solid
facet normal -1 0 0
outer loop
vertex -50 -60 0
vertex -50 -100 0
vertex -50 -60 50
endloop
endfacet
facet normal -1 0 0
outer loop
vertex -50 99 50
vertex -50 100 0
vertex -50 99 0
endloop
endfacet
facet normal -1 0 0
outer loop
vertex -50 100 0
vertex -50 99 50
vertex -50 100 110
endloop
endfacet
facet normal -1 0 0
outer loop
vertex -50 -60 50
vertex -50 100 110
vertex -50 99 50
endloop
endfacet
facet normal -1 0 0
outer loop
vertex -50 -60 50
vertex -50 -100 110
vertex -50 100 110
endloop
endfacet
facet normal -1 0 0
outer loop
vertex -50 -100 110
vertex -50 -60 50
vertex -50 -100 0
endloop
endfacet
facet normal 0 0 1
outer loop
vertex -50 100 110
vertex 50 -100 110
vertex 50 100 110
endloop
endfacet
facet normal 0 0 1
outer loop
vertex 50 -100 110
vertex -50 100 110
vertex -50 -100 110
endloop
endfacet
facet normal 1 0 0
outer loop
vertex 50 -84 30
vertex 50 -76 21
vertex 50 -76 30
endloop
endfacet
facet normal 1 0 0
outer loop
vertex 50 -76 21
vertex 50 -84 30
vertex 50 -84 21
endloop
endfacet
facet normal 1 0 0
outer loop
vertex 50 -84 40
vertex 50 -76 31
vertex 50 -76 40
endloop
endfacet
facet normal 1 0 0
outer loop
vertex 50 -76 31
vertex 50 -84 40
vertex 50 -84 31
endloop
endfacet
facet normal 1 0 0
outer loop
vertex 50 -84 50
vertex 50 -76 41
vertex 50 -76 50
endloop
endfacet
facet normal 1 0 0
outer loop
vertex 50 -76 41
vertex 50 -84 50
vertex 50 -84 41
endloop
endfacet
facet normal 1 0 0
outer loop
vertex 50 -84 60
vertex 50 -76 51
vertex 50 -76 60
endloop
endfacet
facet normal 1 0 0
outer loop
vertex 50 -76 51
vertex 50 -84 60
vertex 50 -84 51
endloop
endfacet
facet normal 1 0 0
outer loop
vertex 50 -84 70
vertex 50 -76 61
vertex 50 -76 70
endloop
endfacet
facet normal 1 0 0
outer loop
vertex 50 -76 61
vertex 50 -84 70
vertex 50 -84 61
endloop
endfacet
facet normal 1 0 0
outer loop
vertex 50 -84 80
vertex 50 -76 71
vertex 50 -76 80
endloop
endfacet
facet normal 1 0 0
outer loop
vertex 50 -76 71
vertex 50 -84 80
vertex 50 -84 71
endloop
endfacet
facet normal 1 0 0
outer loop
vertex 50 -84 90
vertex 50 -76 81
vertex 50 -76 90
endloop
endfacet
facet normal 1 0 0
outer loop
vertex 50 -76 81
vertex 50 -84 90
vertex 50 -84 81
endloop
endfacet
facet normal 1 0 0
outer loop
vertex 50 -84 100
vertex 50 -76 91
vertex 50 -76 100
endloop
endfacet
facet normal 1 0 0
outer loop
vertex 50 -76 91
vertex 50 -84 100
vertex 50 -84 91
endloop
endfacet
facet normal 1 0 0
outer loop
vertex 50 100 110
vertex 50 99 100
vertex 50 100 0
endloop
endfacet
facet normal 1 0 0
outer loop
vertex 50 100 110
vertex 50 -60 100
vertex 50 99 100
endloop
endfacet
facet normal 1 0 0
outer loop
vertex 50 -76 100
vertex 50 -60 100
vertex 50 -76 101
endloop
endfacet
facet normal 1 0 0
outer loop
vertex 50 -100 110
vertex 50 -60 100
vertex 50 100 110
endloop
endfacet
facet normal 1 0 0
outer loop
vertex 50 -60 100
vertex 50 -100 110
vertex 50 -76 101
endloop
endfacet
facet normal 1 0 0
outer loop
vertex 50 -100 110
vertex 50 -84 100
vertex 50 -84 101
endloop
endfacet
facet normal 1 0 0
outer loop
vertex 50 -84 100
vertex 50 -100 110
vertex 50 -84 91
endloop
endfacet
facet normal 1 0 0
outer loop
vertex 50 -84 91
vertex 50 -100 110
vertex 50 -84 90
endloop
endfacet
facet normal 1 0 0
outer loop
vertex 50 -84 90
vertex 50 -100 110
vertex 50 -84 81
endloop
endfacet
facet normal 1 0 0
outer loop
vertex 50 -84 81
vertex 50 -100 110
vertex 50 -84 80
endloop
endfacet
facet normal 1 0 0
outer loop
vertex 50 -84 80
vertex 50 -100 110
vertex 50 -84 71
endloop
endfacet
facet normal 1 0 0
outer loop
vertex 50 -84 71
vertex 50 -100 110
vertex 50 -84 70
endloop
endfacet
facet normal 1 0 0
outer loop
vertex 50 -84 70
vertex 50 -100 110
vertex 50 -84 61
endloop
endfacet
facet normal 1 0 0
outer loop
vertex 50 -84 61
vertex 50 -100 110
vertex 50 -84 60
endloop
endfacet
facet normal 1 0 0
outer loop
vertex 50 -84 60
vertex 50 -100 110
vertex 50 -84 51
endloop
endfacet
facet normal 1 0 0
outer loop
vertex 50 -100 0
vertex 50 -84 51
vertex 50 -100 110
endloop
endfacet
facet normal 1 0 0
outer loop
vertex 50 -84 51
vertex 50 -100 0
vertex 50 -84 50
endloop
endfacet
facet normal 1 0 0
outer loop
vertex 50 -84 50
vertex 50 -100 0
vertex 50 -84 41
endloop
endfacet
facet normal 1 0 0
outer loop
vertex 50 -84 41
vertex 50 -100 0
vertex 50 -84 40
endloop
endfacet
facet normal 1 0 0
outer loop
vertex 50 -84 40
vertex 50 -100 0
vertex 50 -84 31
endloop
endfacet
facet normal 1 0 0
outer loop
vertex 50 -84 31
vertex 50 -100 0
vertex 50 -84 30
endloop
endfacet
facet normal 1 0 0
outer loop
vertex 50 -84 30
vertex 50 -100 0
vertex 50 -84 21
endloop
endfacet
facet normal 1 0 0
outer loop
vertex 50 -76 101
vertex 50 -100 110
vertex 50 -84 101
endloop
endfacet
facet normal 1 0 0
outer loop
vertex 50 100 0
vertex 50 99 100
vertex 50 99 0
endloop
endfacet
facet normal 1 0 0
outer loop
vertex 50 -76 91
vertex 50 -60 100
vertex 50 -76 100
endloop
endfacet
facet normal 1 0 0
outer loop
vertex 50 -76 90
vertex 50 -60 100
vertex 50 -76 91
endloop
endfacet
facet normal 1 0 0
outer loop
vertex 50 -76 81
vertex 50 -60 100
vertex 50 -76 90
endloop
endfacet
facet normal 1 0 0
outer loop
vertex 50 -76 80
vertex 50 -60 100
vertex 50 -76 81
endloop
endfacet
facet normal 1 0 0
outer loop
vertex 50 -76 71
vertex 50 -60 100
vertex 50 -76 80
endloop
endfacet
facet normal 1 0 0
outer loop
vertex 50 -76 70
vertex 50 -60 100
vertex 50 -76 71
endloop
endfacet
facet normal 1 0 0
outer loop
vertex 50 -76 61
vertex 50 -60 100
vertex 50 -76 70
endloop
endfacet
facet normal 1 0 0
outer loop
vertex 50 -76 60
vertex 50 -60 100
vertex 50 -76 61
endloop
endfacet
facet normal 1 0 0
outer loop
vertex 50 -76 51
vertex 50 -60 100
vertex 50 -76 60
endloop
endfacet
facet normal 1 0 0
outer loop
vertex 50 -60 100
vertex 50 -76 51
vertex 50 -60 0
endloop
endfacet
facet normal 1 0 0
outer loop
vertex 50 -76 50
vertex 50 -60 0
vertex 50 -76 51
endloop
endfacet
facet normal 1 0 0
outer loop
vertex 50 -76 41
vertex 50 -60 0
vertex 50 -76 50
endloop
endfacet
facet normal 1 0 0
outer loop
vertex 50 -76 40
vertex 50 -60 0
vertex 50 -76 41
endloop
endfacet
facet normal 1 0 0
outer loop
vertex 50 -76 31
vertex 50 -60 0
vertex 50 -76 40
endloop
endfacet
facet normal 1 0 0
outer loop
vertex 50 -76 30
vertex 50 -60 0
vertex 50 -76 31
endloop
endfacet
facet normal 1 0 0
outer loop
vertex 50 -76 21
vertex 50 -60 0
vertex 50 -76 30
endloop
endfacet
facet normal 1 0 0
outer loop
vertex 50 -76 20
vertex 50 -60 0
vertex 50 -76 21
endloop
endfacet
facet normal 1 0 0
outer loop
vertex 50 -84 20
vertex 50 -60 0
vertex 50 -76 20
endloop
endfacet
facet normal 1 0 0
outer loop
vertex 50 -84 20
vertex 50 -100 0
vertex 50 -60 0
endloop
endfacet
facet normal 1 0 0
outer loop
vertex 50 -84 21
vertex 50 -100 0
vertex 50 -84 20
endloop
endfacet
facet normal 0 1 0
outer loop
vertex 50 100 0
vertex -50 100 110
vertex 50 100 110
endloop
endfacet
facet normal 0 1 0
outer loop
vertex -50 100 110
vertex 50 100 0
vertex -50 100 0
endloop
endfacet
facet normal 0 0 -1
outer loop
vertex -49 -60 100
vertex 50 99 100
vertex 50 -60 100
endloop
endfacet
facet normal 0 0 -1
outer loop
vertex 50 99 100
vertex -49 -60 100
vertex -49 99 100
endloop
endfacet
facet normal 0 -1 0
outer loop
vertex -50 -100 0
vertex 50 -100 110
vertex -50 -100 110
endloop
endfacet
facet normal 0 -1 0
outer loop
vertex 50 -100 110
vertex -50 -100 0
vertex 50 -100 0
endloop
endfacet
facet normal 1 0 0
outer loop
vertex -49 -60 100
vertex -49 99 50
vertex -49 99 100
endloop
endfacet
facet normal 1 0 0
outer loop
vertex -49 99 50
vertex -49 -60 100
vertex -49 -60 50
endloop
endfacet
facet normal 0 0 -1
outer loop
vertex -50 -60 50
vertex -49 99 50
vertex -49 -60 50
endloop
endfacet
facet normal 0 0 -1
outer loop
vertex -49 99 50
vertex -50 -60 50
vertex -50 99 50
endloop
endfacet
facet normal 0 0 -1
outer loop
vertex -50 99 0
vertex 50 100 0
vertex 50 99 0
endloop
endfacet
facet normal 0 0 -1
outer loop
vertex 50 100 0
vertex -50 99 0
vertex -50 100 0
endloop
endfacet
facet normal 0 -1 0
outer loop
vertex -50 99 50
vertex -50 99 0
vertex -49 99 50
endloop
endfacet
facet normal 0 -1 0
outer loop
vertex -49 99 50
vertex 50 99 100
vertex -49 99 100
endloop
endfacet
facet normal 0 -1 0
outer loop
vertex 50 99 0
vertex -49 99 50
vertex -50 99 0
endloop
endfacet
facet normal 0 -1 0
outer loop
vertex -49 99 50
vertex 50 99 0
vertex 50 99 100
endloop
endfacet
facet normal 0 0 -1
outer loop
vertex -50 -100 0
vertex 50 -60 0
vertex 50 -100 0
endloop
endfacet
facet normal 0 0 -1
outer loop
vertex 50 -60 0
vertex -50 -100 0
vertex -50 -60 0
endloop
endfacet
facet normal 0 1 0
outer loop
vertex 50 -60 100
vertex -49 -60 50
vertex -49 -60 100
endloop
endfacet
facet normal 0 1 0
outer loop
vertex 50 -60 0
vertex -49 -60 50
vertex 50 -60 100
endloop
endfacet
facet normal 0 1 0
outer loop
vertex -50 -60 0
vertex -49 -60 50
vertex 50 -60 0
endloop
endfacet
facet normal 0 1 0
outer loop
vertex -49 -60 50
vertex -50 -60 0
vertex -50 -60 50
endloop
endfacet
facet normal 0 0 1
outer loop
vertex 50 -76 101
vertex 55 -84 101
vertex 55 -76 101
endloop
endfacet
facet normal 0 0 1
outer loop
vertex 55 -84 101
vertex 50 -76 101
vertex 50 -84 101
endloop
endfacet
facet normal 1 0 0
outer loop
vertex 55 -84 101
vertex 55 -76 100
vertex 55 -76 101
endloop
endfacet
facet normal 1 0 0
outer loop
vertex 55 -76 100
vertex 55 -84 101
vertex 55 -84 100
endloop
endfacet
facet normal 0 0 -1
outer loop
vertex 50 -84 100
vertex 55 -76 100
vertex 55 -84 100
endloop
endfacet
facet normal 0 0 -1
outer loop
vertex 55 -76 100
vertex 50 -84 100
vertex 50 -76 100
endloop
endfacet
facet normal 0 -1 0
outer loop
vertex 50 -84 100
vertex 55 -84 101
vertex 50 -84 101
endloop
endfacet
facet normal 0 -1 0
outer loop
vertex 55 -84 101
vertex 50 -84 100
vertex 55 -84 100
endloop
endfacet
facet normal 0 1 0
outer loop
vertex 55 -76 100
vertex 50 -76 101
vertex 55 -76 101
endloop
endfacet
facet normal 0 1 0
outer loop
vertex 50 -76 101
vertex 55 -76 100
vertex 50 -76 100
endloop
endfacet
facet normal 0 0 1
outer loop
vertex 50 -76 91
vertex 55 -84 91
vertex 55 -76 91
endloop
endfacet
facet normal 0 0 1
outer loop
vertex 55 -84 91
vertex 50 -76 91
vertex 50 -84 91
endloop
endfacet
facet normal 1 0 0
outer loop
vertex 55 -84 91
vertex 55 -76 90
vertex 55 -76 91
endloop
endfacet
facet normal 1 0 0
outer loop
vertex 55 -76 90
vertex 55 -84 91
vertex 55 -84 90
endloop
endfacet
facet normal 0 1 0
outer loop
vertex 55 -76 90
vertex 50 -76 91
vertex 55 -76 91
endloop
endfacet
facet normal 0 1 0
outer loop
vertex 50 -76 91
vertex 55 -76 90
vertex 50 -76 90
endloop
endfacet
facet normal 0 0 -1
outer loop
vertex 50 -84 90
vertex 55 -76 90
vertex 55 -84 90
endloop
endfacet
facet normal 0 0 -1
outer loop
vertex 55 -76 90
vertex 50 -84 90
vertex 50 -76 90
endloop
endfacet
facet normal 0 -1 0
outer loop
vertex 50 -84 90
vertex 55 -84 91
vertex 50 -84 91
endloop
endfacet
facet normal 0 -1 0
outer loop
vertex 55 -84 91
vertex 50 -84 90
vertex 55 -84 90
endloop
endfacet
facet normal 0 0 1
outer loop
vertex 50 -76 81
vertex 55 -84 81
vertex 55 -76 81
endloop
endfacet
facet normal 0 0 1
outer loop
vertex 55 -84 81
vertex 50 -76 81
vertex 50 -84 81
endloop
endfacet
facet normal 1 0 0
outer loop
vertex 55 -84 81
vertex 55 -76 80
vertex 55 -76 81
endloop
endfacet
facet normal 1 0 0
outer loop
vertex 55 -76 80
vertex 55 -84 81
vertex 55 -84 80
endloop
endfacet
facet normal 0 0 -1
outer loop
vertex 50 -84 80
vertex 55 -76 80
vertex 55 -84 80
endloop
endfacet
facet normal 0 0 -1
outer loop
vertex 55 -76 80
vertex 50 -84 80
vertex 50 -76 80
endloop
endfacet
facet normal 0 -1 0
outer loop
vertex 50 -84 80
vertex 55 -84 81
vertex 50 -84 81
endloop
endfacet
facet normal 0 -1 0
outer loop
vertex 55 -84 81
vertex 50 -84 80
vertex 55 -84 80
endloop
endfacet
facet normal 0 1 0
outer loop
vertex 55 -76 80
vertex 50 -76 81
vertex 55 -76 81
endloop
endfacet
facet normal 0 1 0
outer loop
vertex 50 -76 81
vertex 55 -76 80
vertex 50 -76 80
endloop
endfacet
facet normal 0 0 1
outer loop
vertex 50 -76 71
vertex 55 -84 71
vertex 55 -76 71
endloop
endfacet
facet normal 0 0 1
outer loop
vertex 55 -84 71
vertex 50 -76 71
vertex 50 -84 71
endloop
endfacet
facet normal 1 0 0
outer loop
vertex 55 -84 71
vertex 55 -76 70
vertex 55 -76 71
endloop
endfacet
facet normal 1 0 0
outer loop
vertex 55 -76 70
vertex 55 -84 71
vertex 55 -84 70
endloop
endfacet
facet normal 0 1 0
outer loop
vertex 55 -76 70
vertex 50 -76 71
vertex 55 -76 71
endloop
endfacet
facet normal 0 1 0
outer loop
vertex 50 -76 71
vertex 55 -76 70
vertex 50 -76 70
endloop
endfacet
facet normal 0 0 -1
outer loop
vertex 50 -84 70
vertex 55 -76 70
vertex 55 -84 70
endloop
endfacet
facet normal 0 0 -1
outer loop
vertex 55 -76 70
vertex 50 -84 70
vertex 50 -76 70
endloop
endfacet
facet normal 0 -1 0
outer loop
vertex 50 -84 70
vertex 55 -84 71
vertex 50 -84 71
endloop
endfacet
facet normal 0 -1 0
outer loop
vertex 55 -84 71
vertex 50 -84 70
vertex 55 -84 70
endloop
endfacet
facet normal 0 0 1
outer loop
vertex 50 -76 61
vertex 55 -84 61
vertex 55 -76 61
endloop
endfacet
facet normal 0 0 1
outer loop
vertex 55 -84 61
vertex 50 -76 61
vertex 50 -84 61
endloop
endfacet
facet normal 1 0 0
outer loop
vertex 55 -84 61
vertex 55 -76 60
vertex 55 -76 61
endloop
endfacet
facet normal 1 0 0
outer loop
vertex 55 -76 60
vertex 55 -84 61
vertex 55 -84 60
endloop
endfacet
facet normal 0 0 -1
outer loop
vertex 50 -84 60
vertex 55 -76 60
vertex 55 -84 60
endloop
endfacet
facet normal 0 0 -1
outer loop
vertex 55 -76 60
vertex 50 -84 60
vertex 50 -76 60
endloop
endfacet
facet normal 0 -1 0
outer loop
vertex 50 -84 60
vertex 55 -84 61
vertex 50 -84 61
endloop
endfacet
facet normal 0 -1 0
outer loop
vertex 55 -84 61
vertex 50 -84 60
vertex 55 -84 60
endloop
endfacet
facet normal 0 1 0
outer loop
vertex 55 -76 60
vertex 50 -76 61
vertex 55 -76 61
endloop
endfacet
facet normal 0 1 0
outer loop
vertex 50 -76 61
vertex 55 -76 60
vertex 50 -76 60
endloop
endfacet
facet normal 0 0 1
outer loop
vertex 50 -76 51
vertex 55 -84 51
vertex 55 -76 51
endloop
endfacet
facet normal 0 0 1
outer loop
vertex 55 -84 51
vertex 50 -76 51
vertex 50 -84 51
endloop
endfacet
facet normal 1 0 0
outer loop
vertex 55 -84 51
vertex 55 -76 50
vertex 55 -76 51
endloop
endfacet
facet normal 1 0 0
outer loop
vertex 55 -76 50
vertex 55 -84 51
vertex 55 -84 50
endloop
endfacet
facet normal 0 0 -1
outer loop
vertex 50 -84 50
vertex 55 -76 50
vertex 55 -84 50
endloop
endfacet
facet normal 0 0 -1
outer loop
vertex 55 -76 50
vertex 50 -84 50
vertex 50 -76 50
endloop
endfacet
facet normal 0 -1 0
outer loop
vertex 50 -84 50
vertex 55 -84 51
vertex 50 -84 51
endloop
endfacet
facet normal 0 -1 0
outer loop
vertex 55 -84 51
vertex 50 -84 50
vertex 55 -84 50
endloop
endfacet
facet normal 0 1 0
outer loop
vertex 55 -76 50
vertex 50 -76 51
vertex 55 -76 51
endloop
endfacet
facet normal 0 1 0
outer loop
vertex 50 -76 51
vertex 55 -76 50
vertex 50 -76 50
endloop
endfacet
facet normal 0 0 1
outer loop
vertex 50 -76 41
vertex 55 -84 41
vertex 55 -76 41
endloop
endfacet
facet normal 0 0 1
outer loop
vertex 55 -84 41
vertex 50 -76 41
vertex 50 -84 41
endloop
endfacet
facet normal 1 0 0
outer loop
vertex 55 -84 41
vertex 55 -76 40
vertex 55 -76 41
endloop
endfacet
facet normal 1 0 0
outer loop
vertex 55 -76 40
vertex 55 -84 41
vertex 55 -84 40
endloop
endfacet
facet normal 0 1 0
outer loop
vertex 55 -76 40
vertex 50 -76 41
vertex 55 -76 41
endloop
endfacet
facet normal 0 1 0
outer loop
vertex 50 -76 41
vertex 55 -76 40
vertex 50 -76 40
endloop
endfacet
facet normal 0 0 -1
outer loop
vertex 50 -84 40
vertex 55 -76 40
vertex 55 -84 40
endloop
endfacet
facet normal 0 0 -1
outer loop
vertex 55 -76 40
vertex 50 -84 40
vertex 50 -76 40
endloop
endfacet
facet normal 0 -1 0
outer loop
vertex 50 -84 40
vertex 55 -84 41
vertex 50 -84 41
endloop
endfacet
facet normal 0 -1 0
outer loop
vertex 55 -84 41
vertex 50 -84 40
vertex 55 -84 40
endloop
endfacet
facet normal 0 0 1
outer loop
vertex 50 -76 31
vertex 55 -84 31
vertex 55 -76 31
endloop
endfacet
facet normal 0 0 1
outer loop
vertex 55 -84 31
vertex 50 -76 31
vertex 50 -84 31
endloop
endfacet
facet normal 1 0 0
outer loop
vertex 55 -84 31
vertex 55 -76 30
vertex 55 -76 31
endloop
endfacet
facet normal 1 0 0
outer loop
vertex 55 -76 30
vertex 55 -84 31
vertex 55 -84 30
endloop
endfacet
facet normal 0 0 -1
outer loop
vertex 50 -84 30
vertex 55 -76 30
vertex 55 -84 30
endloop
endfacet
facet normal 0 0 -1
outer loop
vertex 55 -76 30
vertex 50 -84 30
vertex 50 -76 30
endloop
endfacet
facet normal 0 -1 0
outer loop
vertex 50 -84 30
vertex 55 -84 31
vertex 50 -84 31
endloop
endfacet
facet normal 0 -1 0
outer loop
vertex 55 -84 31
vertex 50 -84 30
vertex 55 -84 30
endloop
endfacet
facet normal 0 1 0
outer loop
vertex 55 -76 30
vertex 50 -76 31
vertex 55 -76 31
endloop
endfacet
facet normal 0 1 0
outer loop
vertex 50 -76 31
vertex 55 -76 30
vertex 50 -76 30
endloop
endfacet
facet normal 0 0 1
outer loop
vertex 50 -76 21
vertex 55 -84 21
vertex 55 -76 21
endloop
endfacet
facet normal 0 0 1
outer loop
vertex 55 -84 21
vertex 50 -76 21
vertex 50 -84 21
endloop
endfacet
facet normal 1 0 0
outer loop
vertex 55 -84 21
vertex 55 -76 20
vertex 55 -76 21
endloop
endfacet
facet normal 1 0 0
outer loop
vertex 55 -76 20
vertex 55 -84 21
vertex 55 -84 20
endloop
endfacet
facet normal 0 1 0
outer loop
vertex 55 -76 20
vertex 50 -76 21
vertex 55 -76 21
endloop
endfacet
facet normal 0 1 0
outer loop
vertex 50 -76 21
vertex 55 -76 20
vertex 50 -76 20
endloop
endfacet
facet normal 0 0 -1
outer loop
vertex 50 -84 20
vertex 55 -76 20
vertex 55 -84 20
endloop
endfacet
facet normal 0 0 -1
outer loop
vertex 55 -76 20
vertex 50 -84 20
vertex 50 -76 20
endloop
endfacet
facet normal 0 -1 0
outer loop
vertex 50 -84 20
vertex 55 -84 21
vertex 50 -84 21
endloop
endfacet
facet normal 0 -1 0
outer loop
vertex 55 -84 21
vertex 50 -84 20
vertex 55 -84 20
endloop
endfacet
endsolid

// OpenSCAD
union(){
    cube(size=[0, 0, 0]);
    translate(v=[-50, -100, 100]){
        color(""){
            cube(size=[100, 200, 10]);
        };
    };
    translate(v=[-50, -100, 50]){
        cube(size=[1, 200, 50]);
    };
    translate(v=[-50, 99, 0]){
        cube(size=[100, 1, 100]);
    };
    color(""){
        translate(v=[-50, -100, 0]){
            cube(size=[100, 40, 100]);
        };
    };
    translate(v=[50, -84, 100]){
        cube(size=[5, 8, 1]);
    };
    translate(v=[-50, -100, 0]){
        cube(size=[100, 40, 100]);
    };
    translate(v=[50, -84, 90]){
        cube(size=[5, 8, 1]);
    };
    translate(v=[-50, -100, 0]){
        cube(size=[100, 40, 100]);
    };
    translate(v=[50, -84, 80]){
        cube(size=[5, 8, 1]);
    };
    translate(v=[-50, -100, 0]){
        cube(size=[100, 40, 100]);
    };
    translate(v=[50, -84, 70]){
        cube(size=[5, 8, 1]);
    };
    translate(v=[-50, -100, 0]){
        cube(size=[100, 40, 100]);
    };
    translate(v=[50, -84, 60]){
        cube(size=[5, 8, 1]);
    };
    translate(v=[-50, -100, 0]){
        cube(size=[100, 40, 100]);
    };
    translate(v=[50, -84, 50]){
        cube(size=[5, 8, 1]);
    };
    translate(v=[-50, -100, 0]){
        cube(size=[100, 40, 100]);
    };
    translate(v=[50, -84, 40]){
        cube(size=[5, 8, 1]);
    };
    translate(v=[-50, -100, 0]){
        cube(size=[100, 40, 100]);
    };
    translate(v=[50, -84, 30]){
        cube(size=[5, 8, 1]);
    };
    translate(v=[-50, -100, 0]){
        cube(size=[100, 40, 100]);
    };
    translate(v=[50, -84, 20]){
        cube(size=[5, 8, 1]);
    };
    translate(v=[-50, -100, 0]){
        cube(size=[100, 40, 100]);
    };
    translate(v=[-50, -100, 0]){
        cube(size=[100, 40, 100]);
    };
    translate(v=[-50, -100, 0]){
        cube(size=[100, 40, 100]);
    };
};
